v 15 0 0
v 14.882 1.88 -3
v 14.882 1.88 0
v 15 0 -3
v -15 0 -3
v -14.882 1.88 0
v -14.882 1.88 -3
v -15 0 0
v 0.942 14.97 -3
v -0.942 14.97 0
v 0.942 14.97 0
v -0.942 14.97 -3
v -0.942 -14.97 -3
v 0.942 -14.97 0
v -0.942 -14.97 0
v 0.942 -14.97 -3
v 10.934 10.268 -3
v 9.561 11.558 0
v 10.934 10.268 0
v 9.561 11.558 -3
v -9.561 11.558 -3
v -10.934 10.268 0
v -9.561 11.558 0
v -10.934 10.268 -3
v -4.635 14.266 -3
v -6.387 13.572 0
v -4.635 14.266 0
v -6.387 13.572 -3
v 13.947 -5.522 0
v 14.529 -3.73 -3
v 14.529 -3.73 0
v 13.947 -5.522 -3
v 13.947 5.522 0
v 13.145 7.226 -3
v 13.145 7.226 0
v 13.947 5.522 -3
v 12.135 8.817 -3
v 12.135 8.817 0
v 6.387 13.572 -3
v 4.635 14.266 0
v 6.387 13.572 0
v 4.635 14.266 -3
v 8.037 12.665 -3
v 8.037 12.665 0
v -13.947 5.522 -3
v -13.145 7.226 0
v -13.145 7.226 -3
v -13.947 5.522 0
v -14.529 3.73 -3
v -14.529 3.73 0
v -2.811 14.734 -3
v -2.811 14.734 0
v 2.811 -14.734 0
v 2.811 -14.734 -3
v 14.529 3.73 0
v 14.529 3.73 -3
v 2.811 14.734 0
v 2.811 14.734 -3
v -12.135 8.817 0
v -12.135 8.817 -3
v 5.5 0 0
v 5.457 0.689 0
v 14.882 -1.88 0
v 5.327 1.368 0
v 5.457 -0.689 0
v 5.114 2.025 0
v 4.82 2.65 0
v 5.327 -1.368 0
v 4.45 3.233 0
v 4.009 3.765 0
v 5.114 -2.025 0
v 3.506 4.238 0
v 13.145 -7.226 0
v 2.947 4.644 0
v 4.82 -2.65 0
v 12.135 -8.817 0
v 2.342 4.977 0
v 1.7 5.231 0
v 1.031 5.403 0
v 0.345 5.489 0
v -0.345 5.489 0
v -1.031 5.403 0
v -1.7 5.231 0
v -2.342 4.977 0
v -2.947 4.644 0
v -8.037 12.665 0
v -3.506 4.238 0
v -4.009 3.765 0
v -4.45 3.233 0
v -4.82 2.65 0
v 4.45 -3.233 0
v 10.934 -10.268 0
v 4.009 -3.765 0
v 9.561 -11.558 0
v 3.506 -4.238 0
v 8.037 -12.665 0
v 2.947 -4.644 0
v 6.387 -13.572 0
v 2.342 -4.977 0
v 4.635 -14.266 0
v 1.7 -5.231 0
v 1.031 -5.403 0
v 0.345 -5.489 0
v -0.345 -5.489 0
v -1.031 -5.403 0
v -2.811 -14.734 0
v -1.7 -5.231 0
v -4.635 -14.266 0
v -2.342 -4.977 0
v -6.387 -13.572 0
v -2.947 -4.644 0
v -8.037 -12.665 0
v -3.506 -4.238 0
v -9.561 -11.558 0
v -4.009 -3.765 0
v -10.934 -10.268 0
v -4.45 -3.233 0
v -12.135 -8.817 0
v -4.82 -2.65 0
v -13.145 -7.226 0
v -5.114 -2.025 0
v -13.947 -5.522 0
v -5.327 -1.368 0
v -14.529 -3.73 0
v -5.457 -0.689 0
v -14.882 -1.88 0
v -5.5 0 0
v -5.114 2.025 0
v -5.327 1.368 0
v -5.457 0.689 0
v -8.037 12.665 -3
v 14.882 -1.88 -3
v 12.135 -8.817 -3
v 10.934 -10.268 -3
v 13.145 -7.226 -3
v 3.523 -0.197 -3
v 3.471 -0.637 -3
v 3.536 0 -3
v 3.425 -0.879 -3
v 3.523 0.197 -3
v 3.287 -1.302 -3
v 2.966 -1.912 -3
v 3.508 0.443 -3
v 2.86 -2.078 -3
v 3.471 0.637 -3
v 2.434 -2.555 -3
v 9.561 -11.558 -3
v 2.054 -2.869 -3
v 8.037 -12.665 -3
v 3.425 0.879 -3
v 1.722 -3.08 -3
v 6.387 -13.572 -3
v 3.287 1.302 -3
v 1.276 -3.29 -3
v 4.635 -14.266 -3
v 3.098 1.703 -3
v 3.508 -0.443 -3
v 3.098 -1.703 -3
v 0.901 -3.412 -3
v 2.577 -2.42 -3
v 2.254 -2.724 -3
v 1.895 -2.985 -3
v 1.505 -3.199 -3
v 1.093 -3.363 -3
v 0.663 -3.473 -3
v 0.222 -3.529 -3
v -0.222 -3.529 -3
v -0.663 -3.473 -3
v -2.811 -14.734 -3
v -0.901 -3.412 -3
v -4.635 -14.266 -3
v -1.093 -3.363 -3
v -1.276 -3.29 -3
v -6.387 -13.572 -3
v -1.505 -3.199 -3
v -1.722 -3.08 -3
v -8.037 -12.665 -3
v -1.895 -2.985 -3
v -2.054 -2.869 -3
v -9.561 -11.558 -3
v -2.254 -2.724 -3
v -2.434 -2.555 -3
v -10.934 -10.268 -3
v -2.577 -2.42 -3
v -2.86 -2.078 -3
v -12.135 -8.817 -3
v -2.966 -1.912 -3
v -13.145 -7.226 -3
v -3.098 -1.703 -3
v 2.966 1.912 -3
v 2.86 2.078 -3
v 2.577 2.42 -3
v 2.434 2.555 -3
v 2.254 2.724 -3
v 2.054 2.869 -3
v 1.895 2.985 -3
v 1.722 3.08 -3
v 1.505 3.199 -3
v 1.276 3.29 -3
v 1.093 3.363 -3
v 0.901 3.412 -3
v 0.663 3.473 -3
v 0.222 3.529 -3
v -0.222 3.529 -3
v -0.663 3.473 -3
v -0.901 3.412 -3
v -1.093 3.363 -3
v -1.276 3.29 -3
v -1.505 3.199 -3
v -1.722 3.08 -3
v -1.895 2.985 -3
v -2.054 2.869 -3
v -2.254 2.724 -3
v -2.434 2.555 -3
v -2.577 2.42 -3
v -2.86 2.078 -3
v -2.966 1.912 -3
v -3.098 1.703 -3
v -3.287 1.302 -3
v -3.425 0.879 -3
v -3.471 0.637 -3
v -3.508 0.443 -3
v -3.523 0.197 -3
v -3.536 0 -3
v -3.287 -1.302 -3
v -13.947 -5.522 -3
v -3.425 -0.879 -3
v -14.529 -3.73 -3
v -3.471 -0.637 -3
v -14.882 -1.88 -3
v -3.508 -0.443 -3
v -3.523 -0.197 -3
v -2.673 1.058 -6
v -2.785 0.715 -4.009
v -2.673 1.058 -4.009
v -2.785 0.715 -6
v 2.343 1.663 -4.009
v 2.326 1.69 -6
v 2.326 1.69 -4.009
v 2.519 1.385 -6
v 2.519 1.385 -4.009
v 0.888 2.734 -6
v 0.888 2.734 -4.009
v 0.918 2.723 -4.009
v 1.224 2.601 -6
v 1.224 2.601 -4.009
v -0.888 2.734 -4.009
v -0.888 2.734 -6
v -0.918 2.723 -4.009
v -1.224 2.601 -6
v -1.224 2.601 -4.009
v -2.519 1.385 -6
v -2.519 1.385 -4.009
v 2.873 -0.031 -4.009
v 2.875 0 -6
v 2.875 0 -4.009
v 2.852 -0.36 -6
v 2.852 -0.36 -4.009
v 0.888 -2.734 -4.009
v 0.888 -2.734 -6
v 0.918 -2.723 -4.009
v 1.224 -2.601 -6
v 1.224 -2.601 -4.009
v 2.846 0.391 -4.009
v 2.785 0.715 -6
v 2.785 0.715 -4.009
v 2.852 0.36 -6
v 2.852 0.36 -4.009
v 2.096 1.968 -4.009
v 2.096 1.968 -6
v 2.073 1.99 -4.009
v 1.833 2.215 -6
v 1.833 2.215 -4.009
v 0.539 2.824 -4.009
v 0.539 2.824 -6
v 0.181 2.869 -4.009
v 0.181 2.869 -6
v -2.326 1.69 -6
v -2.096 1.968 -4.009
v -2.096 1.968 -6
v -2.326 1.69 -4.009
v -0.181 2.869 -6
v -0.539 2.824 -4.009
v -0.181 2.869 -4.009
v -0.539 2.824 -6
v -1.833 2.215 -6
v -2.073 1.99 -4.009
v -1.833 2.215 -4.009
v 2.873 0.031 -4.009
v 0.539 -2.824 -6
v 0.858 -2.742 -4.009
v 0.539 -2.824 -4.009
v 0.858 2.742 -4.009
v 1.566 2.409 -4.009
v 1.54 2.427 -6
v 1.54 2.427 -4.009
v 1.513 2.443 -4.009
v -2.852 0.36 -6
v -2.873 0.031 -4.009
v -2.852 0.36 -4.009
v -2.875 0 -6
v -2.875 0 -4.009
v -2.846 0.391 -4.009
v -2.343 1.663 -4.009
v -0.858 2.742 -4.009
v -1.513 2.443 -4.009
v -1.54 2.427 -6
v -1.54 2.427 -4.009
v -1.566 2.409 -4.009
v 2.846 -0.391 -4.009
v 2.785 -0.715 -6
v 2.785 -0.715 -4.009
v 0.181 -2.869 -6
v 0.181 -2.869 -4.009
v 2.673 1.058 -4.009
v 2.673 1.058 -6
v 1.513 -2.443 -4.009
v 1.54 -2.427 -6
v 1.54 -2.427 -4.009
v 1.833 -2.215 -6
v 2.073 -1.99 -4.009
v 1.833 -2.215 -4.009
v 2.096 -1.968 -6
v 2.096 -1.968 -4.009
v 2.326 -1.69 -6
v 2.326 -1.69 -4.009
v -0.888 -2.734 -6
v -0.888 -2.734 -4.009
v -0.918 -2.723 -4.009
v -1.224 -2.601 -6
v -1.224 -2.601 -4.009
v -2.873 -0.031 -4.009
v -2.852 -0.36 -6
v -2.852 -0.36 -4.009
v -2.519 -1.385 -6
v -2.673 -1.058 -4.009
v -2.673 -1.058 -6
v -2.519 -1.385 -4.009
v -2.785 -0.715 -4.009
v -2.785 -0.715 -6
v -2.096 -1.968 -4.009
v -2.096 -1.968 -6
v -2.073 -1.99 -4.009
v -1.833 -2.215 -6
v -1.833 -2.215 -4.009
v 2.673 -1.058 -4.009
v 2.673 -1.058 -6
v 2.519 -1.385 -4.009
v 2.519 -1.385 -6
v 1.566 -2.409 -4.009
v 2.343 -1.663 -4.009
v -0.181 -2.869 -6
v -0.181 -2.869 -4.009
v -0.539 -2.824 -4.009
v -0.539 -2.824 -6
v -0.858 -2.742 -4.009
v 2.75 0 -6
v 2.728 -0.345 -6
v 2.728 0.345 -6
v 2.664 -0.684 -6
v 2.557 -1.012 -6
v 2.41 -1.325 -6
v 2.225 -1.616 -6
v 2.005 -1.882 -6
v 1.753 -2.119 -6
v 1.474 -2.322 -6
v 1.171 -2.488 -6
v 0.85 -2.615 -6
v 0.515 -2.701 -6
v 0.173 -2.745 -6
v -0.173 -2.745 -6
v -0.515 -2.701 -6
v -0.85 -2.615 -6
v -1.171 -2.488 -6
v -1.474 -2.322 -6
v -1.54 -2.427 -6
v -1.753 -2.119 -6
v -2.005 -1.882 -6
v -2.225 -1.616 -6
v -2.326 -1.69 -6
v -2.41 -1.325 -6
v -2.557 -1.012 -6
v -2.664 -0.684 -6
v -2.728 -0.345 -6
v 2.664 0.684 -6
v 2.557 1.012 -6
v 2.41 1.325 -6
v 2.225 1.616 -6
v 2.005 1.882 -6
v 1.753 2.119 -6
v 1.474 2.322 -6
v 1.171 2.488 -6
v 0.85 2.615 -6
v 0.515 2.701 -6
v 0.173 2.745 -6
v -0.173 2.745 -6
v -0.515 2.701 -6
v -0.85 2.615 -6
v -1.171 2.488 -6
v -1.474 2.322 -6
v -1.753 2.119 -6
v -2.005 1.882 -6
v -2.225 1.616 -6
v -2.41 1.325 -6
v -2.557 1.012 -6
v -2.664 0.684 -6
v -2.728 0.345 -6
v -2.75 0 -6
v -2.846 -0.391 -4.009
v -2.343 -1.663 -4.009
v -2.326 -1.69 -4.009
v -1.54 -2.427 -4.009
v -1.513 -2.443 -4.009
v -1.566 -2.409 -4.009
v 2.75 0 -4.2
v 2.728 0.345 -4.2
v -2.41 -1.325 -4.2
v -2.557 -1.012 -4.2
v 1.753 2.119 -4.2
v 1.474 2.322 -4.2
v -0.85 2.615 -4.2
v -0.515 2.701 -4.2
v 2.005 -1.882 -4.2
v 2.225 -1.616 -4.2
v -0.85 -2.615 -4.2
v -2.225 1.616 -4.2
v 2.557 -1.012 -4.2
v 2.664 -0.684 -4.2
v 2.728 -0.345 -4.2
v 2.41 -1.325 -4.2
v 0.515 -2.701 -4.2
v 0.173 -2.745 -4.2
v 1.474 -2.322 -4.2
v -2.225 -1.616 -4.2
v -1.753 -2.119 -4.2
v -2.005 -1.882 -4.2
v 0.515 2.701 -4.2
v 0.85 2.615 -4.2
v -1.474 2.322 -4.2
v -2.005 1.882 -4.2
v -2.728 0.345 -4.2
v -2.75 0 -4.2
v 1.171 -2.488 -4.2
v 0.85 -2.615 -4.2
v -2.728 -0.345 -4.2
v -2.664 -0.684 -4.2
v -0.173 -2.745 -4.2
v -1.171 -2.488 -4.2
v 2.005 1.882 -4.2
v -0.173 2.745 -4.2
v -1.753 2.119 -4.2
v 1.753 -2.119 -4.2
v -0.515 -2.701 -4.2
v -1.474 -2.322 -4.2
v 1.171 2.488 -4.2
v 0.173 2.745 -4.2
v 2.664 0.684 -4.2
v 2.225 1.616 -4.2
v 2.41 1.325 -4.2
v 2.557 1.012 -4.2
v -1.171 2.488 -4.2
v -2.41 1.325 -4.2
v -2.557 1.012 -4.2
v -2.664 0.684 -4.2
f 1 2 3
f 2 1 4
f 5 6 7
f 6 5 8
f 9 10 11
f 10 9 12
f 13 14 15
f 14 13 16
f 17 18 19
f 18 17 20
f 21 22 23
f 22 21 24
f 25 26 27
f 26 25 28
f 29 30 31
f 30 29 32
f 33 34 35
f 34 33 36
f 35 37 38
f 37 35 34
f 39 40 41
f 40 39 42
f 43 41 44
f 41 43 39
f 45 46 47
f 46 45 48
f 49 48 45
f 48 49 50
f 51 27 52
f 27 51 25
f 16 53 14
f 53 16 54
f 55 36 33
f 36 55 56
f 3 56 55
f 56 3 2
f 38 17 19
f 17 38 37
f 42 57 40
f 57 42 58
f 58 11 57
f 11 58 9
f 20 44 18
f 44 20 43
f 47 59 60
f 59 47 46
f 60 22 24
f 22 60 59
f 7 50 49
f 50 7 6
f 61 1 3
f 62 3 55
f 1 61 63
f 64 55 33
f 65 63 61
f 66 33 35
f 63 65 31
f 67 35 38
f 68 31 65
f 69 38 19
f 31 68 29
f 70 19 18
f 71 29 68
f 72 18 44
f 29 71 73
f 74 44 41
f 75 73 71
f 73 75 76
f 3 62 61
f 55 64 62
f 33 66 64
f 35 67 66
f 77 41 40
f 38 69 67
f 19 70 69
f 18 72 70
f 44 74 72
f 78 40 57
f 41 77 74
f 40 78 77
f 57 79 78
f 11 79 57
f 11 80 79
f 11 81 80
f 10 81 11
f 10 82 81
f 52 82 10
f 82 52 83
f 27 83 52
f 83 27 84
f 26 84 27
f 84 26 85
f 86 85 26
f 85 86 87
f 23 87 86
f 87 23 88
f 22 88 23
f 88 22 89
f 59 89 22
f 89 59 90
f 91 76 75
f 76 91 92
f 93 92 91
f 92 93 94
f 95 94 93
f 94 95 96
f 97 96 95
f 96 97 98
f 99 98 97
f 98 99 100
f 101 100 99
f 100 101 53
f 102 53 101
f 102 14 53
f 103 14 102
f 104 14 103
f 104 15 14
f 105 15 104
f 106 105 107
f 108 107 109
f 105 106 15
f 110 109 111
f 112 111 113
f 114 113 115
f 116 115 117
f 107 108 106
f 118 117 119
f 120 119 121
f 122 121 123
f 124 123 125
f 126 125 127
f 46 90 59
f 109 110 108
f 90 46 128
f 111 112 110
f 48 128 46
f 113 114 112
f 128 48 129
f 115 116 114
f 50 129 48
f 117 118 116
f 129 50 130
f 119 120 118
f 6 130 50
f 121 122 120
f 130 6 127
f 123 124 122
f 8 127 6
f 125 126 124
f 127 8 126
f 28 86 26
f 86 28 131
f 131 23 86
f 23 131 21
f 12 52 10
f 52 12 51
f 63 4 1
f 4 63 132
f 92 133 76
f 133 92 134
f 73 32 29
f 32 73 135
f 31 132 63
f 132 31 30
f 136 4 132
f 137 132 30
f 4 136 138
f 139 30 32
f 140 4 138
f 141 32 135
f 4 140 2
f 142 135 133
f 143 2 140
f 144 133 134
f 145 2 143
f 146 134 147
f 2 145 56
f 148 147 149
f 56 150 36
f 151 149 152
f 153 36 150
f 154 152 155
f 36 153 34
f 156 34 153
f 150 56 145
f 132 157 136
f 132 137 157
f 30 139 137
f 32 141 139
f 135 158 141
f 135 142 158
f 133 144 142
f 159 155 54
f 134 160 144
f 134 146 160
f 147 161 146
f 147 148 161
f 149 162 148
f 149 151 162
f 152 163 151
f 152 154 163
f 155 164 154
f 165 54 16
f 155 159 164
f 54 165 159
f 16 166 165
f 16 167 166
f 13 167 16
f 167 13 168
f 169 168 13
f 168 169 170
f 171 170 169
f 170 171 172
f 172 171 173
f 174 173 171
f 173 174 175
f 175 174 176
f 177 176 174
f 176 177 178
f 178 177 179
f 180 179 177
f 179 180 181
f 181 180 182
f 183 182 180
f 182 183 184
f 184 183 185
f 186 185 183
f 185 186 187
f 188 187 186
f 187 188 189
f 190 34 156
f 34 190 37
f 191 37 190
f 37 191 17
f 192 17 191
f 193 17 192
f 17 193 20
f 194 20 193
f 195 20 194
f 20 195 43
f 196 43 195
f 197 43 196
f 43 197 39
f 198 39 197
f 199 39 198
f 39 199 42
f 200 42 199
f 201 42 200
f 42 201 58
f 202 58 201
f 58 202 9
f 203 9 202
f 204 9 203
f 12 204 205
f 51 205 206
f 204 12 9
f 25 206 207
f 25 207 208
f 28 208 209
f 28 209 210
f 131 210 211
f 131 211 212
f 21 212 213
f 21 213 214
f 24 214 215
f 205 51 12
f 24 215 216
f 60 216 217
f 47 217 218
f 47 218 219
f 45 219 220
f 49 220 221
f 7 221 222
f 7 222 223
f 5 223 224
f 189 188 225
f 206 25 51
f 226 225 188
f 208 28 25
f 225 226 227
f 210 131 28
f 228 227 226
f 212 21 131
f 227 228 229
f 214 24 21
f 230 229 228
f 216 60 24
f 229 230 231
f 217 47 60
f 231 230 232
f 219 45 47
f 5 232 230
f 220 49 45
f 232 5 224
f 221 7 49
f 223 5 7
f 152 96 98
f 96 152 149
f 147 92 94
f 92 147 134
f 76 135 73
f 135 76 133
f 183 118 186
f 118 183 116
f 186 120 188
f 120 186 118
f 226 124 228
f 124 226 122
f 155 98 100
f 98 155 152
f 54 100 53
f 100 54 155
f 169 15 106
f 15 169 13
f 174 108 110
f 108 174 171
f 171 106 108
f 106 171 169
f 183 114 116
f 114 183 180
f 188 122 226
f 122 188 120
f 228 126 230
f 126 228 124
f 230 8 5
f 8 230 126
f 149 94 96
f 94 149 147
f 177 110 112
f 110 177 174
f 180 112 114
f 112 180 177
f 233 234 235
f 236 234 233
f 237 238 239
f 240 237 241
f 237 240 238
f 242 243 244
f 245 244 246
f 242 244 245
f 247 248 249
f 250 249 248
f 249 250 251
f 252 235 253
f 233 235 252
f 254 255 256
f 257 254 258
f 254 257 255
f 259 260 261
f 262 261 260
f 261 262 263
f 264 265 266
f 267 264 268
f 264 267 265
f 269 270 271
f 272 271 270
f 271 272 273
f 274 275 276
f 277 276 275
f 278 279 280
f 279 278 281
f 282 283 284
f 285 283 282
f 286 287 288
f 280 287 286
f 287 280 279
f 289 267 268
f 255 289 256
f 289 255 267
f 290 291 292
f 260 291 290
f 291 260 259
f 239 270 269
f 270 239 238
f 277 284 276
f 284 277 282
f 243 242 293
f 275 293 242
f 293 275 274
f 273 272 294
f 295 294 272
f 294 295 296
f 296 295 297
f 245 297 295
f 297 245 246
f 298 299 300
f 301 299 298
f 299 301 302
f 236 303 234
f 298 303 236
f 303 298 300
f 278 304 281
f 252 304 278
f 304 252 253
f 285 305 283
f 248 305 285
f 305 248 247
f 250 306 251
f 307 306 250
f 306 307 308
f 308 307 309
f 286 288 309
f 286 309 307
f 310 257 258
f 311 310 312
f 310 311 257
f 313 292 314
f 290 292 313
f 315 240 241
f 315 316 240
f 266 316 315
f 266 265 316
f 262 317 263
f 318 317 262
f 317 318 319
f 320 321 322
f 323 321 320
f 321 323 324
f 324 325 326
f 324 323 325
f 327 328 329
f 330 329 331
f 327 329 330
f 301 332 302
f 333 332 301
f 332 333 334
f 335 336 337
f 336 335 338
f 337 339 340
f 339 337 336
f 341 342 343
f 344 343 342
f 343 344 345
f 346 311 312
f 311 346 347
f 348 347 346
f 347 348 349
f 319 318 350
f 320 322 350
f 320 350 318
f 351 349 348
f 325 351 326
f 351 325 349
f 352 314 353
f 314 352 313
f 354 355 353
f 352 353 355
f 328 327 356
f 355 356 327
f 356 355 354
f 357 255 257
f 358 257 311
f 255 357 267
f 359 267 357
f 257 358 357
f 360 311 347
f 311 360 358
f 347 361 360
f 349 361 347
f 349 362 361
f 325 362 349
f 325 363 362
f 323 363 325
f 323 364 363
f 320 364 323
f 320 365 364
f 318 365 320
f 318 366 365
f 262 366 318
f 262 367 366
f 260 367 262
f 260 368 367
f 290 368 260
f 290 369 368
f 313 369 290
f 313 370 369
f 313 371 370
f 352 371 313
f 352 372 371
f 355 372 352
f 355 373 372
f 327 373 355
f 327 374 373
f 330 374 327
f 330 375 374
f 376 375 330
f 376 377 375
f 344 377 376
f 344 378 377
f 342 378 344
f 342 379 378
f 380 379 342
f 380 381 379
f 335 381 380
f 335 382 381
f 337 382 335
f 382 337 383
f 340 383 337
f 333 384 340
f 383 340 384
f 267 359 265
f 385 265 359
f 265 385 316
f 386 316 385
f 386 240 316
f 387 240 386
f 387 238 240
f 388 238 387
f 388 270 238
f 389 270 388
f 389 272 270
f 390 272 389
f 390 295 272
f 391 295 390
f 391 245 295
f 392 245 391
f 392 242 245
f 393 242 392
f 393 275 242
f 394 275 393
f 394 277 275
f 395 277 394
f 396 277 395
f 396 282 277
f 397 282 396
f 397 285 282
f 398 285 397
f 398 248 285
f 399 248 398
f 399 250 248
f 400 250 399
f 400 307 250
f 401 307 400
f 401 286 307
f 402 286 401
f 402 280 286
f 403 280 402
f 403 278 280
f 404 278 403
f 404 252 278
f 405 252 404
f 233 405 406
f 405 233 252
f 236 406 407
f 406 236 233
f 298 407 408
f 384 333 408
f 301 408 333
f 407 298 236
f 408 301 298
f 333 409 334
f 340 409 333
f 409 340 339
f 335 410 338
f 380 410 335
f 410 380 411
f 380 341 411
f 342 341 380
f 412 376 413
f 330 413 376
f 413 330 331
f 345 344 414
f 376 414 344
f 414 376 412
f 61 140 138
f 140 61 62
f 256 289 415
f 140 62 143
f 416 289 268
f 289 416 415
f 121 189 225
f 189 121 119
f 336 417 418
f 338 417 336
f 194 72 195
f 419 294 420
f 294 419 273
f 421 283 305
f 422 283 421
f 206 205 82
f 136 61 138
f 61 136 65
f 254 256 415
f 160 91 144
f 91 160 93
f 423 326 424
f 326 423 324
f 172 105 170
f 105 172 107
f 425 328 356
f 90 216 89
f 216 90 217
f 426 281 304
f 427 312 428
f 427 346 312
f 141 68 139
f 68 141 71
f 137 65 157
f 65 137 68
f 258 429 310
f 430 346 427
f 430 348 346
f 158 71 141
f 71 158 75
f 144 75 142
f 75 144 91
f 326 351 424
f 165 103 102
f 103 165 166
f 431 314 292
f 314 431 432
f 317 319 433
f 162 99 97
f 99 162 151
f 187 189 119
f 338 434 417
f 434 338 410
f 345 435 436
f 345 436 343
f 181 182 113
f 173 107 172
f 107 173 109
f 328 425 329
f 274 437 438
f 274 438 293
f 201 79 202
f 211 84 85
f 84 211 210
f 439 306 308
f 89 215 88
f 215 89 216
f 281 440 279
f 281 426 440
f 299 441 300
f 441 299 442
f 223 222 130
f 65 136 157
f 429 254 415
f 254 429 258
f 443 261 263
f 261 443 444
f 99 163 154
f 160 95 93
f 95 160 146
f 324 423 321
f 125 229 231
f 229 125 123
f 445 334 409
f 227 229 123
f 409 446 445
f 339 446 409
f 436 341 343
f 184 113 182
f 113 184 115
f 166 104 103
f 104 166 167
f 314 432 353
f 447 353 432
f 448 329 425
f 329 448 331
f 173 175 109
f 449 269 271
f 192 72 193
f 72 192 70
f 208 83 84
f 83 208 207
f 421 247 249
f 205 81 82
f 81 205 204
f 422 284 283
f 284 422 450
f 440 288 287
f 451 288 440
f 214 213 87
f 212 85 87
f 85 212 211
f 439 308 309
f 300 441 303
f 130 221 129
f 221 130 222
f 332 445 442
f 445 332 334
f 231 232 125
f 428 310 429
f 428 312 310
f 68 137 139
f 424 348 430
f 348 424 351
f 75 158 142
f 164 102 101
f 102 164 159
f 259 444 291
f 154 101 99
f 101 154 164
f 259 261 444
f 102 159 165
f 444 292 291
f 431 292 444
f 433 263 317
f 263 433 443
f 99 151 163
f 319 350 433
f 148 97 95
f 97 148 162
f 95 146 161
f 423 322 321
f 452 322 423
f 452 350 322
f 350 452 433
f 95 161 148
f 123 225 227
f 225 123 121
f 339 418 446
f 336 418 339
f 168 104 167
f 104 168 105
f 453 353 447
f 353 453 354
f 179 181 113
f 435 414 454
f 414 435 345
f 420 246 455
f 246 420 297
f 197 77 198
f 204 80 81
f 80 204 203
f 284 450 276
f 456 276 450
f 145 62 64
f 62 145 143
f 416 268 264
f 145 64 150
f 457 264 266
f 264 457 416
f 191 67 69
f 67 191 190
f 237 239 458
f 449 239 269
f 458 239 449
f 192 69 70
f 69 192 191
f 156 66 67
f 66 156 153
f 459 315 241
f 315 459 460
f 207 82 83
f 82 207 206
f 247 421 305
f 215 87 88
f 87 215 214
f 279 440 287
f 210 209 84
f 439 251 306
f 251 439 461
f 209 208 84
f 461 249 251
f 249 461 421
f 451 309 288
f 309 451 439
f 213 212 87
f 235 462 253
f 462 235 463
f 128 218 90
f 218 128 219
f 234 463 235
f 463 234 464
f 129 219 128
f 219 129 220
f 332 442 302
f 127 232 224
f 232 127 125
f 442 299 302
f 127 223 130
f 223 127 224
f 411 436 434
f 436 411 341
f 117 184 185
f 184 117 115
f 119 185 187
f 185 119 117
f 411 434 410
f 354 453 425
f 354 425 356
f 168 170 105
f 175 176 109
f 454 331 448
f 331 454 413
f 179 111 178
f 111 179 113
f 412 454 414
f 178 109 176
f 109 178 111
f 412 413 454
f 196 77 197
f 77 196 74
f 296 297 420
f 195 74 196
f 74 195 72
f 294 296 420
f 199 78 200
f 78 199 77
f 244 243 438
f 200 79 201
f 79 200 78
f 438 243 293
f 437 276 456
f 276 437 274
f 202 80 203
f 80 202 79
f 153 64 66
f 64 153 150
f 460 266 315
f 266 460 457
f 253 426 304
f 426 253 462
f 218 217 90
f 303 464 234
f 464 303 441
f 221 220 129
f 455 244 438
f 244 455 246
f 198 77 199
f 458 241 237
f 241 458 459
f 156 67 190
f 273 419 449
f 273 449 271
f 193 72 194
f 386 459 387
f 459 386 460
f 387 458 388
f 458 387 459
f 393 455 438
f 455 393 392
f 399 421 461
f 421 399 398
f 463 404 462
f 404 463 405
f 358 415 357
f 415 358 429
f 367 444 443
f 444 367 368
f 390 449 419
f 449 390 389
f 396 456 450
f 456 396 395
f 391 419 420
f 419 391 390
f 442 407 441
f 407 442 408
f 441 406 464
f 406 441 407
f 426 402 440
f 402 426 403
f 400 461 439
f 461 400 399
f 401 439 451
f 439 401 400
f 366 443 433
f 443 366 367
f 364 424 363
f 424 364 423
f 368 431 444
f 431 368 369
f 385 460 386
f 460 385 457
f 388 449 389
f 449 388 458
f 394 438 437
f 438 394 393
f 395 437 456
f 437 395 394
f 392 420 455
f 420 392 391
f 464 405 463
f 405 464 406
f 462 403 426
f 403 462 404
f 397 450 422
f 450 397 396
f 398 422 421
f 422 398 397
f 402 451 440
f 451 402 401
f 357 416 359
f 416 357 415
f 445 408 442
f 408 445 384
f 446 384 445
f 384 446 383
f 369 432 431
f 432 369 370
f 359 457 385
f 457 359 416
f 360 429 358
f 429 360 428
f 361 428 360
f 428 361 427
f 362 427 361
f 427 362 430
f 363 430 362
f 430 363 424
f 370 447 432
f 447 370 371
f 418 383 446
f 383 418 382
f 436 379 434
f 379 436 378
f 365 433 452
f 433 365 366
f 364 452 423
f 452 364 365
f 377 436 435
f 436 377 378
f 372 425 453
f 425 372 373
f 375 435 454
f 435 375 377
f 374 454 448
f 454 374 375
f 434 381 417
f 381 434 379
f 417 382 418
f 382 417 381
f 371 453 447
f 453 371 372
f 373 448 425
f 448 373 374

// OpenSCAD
$fn = 50;

difference() {
	union() {
		translate(v = [0, 0, -3.0]) {
			cylinder(h = 3, r = 15.0);
		}
		#translate(v = [0, 0, -6.0]) {
			cylinder(h = 6, r = 2.875);
		}
	}
	union() {
		translate(v = [0, 0, 0]) {
			rotate(a = [0, 0, 0]) {
				difference() {
					union() {
						translate(v = [0, 0, -6.0]) {
							cylinder(h = 6, r = 2.25);
						}
						translate(v = [0, 0, -4.2]) {
							cylinder(h = 4.2, r1 = 2.75, r2 = 5.5);
						}
						translate(v = [0, 0, -6.0]) {
							cylinder(h = 6, r = 2.75);
						}
						translate(v = [0, 0, -6.0]) {
							cylinder(h = 6, r = 2.25);
						}
					}
					union();
				}
			}
		}
	}
}
